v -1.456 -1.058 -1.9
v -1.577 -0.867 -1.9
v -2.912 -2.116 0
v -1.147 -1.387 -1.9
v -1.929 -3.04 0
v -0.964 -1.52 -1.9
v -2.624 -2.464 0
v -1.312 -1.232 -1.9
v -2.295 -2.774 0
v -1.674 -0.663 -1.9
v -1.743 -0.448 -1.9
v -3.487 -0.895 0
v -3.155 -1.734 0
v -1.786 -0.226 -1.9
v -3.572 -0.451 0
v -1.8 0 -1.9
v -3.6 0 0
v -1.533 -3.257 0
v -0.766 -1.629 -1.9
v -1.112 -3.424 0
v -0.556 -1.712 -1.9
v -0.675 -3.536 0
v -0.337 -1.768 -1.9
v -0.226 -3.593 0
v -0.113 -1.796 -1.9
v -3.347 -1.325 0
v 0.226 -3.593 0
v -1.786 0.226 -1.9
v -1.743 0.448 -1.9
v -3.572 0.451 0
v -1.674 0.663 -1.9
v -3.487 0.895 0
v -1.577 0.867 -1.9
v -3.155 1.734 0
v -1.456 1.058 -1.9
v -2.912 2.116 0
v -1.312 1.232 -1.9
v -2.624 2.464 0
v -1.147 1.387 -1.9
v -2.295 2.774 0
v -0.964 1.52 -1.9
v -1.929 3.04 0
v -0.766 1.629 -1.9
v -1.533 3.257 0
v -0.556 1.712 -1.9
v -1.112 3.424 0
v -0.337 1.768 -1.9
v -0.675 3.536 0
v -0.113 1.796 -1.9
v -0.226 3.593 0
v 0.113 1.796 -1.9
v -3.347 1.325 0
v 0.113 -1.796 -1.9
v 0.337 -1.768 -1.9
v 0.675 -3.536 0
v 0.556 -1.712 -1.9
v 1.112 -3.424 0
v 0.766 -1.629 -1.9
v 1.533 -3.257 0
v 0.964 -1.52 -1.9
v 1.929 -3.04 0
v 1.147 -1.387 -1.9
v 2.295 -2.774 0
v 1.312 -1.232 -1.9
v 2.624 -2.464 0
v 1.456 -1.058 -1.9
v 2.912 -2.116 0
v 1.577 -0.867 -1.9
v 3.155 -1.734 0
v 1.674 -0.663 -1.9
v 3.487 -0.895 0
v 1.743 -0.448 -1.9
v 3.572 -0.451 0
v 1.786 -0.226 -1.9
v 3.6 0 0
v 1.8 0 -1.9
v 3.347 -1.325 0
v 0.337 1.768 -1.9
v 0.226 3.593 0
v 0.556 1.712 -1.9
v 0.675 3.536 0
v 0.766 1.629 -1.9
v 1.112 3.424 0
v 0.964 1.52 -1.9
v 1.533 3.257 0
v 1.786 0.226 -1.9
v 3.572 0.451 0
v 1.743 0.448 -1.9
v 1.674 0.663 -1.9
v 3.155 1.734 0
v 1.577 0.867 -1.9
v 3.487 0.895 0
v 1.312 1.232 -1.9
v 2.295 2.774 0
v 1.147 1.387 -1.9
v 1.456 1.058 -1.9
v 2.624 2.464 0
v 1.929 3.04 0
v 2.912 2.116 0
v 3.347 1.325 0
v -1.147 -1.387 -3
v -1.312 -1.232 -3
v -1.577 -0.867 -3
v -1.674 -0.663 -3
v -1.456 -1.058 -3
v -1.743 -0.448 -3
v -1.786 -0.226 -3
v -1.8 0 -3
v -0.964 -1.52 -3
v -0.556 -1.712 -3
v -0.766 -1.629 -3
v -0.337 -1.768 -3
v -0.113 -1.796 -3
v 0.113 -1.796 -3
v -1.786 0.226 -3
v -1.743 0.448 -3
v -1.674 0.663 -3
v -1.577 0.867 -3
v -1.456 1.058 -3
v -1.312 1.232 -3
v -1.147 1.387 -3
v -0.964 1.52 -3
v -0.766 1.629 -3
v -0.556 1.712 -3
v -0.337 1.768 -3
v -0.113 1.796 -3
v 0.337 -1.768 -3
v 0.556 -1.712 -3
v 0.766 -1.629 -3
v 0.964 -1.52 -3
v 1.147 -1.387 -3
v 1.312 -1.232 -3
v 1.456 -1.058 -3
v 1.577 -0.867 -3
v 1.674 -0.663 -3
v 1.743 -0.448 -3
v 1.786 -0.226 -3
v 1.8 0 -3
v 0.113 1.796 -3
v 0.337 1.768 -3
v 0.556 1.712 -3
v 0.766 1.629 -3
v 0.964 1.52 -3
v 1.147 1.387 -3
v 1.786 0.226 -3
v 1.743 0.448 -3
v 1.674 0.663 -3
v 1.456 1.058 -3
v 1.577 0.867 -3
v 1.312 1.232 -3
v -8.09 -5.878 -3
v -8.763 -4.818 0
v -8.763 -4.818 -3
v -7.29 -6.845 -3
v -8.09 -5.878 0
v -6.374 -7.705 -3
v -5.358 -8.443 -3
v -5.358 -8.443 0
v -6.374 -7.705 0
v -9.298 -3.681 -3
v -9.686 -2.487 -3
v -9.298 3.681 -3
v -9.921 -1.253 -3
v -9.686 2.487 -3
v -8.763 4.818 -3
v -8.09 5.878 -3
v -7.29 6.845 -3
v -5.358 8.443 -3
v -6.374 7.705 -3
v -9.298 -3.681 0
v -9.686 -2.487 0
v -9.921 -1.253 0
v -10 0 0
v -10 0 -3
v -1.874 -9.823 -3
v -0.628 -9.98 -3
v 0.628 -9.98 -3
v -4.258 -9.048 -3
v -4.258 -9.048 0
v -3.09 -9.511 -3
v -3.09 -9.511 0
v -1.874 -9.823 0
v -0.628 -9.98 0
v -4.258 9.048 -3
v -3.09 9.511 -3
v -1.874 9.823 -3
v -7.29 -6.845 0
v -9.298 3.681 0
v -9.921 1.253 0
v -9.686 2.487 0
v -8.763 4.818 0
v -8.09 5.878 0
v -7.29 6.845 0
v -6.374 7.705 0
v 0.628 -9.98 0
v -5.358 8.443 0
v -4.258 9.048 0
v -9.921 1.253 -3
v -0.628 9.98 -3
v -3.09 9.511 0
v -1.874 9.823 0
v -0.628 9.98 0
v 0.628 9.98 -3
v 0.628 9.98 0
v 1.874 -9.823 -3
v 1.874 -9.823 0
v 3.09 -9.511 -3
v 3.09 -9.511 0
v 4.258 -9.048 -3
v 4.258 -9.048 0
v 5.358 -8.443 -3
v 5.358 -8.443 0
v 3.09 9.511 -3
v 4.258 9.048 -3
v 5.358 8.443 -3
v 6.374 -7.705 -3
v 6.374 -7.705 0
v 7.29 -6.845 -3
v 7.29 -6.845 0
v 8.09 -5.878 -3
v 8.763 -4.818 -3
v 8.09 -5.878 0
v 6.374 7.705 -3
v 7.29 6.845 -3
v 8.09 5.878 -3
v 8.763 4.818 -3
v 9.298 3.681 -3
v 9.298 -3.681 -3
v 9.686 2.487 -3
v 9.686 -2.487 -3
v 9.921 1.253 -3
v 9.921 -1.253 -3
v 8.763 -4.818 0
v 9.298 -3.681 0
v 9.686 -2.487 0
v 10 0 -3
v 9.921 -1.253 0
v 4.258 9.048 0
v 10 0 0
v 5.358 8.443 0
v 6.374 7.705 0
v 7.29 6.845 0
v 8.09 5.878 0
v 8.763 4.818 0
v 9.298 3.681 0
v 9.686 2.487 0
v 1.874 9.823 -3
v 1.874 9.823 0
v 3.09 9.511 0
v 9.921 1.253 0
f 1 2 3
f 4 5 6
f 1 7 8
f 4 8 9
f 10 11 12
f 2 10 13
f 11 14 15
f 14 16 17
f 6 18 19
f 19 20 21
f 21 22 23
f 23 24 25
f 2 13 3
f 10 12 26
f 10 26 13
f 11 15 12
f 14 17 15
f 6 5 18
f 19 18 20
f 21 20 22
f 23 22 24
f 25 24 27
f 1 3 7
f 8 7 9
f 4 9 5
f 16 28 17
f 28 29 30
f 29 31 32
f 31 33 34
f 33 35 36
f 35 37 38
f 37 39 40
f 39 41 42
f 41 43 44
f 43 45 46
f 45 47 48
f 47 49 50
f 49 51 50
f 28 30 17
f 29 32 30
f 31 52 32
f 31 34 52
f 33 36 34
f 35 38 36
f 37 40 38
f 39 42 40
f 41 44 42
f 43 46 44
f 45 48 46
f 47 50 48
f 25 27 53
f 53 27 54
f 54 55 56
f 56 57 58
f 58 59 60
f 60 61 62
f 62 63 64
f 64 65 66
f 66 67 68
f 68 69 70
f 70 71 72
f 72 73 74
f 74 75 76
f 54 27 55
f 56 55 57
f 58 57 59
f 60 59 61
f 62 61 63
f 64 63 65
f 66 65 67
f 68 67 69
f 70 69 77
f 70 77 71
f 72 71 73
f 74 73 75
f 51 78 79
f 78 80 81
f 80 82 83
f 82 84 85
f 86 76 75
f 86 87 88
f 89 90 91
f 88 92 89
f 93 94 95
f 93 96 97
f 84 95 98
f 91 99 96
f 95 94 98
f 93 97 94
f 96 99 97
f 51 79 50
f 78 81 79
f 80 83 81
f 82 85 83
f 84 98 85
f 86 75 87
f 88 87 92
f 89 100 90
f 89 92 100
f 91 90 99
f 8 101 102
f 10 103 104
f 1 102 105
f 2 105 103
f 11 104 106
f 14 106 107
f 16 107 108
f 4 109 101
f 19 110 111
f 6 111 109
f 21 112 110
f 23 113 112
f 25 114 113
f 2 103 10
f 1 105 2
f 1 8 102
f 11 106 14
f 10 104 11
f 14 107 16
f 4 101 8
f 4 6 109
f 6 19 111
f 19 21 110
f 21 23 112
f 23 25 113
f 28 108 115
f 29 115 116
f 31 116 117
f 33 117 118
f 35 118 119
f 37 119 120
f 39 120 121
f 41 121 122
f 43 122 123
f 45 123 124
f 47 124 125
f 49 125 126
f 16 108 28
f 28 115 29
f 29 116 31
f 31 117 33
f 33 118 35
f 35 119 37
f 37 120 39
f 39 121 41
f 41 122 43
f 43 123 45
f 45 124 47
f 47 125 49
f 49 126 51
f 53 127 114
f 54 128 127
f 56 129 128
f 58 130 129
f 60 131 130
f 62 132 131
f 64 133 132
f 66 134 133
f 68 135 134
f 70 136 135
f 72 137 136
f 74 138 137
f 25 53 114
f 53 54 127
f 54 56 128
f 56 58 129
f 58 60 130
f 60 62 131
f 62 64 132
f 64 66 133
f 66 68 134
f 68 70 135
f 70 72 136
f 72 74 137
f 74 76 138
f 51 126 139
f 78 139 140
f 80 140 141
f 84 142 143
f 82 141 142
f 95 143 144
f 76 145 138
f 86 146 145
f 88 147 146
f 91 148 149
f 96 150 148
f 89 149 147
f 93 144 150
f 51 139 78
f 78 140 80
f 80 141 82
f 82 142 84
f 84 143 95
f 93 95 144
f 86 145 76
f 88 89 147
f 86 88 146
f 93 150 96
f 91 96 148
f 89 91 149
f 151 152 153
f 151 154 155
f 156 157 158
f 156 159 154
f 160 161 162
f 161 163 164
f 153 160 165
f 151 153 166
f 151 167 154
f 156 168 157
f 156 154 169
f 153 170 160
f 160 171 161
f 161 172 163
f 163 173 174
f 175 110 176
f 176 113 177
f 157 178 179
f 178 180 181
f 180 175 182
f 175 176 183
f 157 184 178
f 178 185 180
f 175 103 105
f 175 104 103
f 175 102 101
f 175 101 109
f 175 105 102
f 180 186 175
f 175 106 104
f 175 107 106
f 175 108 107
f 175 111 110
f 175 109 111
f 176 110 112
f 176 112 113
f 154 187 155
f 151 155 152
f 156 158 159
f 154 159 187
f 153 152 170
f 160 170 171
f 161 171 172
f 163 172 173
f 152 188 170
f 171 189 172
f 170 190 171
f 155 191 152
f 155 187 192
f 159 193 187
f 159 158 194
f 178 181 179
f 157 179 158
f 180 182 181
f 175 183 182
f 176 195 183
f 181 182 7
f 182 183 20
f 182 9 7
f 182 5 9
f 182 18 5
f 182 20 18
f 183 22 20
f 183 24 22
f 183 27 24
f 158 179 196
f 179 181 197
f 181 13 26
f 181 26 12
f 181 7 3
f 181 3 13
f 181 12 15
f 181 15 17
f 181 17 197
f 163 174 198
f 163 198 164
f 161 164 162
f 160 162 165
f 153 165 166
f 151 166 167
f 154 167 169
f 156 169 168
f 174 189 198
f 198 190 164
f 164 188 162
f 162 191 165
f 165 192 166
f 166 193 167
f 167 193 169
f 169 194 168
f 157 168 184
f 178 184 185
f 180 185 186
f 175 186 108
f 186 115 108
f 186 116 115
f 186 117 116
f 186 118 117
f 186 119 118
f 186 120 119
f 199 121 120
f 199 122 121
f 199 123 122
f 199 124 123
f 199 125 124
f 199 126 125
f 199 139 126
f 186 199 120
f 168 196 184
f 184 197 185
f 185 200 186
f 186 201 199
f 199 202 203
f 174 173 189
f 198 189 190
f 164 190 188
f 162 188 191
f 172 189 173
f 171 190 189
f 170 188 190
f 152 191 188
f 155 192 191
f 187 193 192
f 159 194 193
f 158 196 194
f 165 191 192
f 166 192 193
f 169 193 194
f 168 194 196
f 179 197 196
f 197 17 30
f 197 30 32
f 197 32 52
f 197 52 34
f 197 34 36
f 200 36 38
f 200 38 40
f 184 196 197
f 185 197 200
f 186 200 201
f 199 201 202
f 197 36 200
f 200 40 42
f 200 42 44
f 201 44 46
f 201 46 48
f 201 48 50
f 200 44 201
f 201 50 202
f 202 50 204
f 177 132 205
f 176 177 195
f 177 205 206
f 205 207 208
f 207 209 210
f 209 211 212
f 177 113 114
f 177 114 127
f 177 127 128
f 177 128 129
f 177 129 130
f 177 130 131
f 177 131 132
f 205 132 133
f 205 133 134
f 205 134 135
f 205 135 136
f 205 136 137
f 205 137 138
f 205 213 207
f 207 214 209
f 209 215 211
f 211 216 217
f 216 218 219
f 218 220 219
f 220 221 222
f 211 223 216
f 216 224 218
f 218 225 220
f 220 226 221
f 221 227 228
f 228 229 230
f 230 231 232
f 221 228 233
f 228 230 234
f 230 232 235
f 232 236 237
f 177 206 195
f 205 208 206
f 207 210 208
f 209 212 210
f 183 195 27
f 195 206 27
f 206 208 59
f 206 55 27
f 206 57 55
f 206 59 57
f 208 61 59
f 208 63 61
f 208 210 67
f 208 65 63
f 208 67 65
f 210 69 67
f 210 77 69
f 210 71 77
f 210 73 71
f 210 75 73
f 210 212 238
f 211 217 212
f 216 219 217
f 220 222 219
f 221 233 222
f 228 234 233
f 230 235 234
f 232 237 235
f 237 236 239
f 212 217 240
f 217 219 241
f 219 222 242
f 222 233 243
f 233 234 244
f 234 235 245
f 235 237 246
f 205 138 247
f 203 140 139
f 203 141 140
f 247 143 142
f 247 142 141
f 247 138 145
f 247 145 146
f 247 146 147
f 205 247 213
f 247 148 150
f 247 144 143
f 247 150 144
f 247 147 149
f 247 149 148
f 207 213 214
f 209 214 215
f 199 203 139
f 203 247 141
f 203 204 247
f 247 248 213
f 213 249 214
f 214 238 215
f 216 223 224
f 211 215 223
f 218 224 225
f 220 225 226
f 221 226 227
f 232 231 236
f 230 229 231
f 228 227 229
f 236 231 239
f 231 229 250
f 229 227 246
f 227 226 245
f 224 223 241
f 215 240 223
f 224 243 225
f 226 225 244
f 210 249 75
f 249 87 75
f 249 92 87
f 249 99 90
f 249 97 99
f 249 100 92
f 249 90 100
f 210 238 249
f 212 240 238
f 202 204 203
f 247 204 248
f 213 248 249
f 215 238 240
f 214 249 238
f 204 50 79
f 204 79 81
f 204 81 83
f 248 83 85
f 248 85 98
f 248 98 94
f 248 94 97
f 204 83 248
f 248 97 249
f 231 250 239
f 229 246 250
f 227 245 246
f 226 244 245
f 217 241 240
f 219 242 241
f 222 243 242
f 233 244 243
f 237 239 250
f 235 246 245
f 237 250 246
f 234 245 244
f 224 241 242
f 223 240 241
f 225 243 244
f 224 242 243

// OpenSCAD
$fn = 50;


difference() {
	union() {
		translate(v = [0, 0, -3.0000000000]) {
			cylinder(h = 3, r = 10.0000000000);
		}
	}
	union() {
		translate(v = [0, 0, 0]) {
			rotate(a = [0, 0, 0]) {
				difference() {
					union() {
						translate(v = [0, 0, -6.0000000000]) {
							cylinder(h = 6, r = 1.5000000000);
						}
						translate(v = [0, 0, -1.9000000000]) {
							cylinder(h = 1.9000000000, r1 = 1.8000000000, r2 = 3.6000000000);
						}
						translate(v = [0, 0, -6.0000000000]) {
							cylinder(h = 6, r = 1.8000000000);
						}
						translate(v = [0, 0, -6.0000000000]) {
							cylinder(h = 6, r = 1.5000000000);
						}
					}
					union();
				}
			}
		}
	}
}
